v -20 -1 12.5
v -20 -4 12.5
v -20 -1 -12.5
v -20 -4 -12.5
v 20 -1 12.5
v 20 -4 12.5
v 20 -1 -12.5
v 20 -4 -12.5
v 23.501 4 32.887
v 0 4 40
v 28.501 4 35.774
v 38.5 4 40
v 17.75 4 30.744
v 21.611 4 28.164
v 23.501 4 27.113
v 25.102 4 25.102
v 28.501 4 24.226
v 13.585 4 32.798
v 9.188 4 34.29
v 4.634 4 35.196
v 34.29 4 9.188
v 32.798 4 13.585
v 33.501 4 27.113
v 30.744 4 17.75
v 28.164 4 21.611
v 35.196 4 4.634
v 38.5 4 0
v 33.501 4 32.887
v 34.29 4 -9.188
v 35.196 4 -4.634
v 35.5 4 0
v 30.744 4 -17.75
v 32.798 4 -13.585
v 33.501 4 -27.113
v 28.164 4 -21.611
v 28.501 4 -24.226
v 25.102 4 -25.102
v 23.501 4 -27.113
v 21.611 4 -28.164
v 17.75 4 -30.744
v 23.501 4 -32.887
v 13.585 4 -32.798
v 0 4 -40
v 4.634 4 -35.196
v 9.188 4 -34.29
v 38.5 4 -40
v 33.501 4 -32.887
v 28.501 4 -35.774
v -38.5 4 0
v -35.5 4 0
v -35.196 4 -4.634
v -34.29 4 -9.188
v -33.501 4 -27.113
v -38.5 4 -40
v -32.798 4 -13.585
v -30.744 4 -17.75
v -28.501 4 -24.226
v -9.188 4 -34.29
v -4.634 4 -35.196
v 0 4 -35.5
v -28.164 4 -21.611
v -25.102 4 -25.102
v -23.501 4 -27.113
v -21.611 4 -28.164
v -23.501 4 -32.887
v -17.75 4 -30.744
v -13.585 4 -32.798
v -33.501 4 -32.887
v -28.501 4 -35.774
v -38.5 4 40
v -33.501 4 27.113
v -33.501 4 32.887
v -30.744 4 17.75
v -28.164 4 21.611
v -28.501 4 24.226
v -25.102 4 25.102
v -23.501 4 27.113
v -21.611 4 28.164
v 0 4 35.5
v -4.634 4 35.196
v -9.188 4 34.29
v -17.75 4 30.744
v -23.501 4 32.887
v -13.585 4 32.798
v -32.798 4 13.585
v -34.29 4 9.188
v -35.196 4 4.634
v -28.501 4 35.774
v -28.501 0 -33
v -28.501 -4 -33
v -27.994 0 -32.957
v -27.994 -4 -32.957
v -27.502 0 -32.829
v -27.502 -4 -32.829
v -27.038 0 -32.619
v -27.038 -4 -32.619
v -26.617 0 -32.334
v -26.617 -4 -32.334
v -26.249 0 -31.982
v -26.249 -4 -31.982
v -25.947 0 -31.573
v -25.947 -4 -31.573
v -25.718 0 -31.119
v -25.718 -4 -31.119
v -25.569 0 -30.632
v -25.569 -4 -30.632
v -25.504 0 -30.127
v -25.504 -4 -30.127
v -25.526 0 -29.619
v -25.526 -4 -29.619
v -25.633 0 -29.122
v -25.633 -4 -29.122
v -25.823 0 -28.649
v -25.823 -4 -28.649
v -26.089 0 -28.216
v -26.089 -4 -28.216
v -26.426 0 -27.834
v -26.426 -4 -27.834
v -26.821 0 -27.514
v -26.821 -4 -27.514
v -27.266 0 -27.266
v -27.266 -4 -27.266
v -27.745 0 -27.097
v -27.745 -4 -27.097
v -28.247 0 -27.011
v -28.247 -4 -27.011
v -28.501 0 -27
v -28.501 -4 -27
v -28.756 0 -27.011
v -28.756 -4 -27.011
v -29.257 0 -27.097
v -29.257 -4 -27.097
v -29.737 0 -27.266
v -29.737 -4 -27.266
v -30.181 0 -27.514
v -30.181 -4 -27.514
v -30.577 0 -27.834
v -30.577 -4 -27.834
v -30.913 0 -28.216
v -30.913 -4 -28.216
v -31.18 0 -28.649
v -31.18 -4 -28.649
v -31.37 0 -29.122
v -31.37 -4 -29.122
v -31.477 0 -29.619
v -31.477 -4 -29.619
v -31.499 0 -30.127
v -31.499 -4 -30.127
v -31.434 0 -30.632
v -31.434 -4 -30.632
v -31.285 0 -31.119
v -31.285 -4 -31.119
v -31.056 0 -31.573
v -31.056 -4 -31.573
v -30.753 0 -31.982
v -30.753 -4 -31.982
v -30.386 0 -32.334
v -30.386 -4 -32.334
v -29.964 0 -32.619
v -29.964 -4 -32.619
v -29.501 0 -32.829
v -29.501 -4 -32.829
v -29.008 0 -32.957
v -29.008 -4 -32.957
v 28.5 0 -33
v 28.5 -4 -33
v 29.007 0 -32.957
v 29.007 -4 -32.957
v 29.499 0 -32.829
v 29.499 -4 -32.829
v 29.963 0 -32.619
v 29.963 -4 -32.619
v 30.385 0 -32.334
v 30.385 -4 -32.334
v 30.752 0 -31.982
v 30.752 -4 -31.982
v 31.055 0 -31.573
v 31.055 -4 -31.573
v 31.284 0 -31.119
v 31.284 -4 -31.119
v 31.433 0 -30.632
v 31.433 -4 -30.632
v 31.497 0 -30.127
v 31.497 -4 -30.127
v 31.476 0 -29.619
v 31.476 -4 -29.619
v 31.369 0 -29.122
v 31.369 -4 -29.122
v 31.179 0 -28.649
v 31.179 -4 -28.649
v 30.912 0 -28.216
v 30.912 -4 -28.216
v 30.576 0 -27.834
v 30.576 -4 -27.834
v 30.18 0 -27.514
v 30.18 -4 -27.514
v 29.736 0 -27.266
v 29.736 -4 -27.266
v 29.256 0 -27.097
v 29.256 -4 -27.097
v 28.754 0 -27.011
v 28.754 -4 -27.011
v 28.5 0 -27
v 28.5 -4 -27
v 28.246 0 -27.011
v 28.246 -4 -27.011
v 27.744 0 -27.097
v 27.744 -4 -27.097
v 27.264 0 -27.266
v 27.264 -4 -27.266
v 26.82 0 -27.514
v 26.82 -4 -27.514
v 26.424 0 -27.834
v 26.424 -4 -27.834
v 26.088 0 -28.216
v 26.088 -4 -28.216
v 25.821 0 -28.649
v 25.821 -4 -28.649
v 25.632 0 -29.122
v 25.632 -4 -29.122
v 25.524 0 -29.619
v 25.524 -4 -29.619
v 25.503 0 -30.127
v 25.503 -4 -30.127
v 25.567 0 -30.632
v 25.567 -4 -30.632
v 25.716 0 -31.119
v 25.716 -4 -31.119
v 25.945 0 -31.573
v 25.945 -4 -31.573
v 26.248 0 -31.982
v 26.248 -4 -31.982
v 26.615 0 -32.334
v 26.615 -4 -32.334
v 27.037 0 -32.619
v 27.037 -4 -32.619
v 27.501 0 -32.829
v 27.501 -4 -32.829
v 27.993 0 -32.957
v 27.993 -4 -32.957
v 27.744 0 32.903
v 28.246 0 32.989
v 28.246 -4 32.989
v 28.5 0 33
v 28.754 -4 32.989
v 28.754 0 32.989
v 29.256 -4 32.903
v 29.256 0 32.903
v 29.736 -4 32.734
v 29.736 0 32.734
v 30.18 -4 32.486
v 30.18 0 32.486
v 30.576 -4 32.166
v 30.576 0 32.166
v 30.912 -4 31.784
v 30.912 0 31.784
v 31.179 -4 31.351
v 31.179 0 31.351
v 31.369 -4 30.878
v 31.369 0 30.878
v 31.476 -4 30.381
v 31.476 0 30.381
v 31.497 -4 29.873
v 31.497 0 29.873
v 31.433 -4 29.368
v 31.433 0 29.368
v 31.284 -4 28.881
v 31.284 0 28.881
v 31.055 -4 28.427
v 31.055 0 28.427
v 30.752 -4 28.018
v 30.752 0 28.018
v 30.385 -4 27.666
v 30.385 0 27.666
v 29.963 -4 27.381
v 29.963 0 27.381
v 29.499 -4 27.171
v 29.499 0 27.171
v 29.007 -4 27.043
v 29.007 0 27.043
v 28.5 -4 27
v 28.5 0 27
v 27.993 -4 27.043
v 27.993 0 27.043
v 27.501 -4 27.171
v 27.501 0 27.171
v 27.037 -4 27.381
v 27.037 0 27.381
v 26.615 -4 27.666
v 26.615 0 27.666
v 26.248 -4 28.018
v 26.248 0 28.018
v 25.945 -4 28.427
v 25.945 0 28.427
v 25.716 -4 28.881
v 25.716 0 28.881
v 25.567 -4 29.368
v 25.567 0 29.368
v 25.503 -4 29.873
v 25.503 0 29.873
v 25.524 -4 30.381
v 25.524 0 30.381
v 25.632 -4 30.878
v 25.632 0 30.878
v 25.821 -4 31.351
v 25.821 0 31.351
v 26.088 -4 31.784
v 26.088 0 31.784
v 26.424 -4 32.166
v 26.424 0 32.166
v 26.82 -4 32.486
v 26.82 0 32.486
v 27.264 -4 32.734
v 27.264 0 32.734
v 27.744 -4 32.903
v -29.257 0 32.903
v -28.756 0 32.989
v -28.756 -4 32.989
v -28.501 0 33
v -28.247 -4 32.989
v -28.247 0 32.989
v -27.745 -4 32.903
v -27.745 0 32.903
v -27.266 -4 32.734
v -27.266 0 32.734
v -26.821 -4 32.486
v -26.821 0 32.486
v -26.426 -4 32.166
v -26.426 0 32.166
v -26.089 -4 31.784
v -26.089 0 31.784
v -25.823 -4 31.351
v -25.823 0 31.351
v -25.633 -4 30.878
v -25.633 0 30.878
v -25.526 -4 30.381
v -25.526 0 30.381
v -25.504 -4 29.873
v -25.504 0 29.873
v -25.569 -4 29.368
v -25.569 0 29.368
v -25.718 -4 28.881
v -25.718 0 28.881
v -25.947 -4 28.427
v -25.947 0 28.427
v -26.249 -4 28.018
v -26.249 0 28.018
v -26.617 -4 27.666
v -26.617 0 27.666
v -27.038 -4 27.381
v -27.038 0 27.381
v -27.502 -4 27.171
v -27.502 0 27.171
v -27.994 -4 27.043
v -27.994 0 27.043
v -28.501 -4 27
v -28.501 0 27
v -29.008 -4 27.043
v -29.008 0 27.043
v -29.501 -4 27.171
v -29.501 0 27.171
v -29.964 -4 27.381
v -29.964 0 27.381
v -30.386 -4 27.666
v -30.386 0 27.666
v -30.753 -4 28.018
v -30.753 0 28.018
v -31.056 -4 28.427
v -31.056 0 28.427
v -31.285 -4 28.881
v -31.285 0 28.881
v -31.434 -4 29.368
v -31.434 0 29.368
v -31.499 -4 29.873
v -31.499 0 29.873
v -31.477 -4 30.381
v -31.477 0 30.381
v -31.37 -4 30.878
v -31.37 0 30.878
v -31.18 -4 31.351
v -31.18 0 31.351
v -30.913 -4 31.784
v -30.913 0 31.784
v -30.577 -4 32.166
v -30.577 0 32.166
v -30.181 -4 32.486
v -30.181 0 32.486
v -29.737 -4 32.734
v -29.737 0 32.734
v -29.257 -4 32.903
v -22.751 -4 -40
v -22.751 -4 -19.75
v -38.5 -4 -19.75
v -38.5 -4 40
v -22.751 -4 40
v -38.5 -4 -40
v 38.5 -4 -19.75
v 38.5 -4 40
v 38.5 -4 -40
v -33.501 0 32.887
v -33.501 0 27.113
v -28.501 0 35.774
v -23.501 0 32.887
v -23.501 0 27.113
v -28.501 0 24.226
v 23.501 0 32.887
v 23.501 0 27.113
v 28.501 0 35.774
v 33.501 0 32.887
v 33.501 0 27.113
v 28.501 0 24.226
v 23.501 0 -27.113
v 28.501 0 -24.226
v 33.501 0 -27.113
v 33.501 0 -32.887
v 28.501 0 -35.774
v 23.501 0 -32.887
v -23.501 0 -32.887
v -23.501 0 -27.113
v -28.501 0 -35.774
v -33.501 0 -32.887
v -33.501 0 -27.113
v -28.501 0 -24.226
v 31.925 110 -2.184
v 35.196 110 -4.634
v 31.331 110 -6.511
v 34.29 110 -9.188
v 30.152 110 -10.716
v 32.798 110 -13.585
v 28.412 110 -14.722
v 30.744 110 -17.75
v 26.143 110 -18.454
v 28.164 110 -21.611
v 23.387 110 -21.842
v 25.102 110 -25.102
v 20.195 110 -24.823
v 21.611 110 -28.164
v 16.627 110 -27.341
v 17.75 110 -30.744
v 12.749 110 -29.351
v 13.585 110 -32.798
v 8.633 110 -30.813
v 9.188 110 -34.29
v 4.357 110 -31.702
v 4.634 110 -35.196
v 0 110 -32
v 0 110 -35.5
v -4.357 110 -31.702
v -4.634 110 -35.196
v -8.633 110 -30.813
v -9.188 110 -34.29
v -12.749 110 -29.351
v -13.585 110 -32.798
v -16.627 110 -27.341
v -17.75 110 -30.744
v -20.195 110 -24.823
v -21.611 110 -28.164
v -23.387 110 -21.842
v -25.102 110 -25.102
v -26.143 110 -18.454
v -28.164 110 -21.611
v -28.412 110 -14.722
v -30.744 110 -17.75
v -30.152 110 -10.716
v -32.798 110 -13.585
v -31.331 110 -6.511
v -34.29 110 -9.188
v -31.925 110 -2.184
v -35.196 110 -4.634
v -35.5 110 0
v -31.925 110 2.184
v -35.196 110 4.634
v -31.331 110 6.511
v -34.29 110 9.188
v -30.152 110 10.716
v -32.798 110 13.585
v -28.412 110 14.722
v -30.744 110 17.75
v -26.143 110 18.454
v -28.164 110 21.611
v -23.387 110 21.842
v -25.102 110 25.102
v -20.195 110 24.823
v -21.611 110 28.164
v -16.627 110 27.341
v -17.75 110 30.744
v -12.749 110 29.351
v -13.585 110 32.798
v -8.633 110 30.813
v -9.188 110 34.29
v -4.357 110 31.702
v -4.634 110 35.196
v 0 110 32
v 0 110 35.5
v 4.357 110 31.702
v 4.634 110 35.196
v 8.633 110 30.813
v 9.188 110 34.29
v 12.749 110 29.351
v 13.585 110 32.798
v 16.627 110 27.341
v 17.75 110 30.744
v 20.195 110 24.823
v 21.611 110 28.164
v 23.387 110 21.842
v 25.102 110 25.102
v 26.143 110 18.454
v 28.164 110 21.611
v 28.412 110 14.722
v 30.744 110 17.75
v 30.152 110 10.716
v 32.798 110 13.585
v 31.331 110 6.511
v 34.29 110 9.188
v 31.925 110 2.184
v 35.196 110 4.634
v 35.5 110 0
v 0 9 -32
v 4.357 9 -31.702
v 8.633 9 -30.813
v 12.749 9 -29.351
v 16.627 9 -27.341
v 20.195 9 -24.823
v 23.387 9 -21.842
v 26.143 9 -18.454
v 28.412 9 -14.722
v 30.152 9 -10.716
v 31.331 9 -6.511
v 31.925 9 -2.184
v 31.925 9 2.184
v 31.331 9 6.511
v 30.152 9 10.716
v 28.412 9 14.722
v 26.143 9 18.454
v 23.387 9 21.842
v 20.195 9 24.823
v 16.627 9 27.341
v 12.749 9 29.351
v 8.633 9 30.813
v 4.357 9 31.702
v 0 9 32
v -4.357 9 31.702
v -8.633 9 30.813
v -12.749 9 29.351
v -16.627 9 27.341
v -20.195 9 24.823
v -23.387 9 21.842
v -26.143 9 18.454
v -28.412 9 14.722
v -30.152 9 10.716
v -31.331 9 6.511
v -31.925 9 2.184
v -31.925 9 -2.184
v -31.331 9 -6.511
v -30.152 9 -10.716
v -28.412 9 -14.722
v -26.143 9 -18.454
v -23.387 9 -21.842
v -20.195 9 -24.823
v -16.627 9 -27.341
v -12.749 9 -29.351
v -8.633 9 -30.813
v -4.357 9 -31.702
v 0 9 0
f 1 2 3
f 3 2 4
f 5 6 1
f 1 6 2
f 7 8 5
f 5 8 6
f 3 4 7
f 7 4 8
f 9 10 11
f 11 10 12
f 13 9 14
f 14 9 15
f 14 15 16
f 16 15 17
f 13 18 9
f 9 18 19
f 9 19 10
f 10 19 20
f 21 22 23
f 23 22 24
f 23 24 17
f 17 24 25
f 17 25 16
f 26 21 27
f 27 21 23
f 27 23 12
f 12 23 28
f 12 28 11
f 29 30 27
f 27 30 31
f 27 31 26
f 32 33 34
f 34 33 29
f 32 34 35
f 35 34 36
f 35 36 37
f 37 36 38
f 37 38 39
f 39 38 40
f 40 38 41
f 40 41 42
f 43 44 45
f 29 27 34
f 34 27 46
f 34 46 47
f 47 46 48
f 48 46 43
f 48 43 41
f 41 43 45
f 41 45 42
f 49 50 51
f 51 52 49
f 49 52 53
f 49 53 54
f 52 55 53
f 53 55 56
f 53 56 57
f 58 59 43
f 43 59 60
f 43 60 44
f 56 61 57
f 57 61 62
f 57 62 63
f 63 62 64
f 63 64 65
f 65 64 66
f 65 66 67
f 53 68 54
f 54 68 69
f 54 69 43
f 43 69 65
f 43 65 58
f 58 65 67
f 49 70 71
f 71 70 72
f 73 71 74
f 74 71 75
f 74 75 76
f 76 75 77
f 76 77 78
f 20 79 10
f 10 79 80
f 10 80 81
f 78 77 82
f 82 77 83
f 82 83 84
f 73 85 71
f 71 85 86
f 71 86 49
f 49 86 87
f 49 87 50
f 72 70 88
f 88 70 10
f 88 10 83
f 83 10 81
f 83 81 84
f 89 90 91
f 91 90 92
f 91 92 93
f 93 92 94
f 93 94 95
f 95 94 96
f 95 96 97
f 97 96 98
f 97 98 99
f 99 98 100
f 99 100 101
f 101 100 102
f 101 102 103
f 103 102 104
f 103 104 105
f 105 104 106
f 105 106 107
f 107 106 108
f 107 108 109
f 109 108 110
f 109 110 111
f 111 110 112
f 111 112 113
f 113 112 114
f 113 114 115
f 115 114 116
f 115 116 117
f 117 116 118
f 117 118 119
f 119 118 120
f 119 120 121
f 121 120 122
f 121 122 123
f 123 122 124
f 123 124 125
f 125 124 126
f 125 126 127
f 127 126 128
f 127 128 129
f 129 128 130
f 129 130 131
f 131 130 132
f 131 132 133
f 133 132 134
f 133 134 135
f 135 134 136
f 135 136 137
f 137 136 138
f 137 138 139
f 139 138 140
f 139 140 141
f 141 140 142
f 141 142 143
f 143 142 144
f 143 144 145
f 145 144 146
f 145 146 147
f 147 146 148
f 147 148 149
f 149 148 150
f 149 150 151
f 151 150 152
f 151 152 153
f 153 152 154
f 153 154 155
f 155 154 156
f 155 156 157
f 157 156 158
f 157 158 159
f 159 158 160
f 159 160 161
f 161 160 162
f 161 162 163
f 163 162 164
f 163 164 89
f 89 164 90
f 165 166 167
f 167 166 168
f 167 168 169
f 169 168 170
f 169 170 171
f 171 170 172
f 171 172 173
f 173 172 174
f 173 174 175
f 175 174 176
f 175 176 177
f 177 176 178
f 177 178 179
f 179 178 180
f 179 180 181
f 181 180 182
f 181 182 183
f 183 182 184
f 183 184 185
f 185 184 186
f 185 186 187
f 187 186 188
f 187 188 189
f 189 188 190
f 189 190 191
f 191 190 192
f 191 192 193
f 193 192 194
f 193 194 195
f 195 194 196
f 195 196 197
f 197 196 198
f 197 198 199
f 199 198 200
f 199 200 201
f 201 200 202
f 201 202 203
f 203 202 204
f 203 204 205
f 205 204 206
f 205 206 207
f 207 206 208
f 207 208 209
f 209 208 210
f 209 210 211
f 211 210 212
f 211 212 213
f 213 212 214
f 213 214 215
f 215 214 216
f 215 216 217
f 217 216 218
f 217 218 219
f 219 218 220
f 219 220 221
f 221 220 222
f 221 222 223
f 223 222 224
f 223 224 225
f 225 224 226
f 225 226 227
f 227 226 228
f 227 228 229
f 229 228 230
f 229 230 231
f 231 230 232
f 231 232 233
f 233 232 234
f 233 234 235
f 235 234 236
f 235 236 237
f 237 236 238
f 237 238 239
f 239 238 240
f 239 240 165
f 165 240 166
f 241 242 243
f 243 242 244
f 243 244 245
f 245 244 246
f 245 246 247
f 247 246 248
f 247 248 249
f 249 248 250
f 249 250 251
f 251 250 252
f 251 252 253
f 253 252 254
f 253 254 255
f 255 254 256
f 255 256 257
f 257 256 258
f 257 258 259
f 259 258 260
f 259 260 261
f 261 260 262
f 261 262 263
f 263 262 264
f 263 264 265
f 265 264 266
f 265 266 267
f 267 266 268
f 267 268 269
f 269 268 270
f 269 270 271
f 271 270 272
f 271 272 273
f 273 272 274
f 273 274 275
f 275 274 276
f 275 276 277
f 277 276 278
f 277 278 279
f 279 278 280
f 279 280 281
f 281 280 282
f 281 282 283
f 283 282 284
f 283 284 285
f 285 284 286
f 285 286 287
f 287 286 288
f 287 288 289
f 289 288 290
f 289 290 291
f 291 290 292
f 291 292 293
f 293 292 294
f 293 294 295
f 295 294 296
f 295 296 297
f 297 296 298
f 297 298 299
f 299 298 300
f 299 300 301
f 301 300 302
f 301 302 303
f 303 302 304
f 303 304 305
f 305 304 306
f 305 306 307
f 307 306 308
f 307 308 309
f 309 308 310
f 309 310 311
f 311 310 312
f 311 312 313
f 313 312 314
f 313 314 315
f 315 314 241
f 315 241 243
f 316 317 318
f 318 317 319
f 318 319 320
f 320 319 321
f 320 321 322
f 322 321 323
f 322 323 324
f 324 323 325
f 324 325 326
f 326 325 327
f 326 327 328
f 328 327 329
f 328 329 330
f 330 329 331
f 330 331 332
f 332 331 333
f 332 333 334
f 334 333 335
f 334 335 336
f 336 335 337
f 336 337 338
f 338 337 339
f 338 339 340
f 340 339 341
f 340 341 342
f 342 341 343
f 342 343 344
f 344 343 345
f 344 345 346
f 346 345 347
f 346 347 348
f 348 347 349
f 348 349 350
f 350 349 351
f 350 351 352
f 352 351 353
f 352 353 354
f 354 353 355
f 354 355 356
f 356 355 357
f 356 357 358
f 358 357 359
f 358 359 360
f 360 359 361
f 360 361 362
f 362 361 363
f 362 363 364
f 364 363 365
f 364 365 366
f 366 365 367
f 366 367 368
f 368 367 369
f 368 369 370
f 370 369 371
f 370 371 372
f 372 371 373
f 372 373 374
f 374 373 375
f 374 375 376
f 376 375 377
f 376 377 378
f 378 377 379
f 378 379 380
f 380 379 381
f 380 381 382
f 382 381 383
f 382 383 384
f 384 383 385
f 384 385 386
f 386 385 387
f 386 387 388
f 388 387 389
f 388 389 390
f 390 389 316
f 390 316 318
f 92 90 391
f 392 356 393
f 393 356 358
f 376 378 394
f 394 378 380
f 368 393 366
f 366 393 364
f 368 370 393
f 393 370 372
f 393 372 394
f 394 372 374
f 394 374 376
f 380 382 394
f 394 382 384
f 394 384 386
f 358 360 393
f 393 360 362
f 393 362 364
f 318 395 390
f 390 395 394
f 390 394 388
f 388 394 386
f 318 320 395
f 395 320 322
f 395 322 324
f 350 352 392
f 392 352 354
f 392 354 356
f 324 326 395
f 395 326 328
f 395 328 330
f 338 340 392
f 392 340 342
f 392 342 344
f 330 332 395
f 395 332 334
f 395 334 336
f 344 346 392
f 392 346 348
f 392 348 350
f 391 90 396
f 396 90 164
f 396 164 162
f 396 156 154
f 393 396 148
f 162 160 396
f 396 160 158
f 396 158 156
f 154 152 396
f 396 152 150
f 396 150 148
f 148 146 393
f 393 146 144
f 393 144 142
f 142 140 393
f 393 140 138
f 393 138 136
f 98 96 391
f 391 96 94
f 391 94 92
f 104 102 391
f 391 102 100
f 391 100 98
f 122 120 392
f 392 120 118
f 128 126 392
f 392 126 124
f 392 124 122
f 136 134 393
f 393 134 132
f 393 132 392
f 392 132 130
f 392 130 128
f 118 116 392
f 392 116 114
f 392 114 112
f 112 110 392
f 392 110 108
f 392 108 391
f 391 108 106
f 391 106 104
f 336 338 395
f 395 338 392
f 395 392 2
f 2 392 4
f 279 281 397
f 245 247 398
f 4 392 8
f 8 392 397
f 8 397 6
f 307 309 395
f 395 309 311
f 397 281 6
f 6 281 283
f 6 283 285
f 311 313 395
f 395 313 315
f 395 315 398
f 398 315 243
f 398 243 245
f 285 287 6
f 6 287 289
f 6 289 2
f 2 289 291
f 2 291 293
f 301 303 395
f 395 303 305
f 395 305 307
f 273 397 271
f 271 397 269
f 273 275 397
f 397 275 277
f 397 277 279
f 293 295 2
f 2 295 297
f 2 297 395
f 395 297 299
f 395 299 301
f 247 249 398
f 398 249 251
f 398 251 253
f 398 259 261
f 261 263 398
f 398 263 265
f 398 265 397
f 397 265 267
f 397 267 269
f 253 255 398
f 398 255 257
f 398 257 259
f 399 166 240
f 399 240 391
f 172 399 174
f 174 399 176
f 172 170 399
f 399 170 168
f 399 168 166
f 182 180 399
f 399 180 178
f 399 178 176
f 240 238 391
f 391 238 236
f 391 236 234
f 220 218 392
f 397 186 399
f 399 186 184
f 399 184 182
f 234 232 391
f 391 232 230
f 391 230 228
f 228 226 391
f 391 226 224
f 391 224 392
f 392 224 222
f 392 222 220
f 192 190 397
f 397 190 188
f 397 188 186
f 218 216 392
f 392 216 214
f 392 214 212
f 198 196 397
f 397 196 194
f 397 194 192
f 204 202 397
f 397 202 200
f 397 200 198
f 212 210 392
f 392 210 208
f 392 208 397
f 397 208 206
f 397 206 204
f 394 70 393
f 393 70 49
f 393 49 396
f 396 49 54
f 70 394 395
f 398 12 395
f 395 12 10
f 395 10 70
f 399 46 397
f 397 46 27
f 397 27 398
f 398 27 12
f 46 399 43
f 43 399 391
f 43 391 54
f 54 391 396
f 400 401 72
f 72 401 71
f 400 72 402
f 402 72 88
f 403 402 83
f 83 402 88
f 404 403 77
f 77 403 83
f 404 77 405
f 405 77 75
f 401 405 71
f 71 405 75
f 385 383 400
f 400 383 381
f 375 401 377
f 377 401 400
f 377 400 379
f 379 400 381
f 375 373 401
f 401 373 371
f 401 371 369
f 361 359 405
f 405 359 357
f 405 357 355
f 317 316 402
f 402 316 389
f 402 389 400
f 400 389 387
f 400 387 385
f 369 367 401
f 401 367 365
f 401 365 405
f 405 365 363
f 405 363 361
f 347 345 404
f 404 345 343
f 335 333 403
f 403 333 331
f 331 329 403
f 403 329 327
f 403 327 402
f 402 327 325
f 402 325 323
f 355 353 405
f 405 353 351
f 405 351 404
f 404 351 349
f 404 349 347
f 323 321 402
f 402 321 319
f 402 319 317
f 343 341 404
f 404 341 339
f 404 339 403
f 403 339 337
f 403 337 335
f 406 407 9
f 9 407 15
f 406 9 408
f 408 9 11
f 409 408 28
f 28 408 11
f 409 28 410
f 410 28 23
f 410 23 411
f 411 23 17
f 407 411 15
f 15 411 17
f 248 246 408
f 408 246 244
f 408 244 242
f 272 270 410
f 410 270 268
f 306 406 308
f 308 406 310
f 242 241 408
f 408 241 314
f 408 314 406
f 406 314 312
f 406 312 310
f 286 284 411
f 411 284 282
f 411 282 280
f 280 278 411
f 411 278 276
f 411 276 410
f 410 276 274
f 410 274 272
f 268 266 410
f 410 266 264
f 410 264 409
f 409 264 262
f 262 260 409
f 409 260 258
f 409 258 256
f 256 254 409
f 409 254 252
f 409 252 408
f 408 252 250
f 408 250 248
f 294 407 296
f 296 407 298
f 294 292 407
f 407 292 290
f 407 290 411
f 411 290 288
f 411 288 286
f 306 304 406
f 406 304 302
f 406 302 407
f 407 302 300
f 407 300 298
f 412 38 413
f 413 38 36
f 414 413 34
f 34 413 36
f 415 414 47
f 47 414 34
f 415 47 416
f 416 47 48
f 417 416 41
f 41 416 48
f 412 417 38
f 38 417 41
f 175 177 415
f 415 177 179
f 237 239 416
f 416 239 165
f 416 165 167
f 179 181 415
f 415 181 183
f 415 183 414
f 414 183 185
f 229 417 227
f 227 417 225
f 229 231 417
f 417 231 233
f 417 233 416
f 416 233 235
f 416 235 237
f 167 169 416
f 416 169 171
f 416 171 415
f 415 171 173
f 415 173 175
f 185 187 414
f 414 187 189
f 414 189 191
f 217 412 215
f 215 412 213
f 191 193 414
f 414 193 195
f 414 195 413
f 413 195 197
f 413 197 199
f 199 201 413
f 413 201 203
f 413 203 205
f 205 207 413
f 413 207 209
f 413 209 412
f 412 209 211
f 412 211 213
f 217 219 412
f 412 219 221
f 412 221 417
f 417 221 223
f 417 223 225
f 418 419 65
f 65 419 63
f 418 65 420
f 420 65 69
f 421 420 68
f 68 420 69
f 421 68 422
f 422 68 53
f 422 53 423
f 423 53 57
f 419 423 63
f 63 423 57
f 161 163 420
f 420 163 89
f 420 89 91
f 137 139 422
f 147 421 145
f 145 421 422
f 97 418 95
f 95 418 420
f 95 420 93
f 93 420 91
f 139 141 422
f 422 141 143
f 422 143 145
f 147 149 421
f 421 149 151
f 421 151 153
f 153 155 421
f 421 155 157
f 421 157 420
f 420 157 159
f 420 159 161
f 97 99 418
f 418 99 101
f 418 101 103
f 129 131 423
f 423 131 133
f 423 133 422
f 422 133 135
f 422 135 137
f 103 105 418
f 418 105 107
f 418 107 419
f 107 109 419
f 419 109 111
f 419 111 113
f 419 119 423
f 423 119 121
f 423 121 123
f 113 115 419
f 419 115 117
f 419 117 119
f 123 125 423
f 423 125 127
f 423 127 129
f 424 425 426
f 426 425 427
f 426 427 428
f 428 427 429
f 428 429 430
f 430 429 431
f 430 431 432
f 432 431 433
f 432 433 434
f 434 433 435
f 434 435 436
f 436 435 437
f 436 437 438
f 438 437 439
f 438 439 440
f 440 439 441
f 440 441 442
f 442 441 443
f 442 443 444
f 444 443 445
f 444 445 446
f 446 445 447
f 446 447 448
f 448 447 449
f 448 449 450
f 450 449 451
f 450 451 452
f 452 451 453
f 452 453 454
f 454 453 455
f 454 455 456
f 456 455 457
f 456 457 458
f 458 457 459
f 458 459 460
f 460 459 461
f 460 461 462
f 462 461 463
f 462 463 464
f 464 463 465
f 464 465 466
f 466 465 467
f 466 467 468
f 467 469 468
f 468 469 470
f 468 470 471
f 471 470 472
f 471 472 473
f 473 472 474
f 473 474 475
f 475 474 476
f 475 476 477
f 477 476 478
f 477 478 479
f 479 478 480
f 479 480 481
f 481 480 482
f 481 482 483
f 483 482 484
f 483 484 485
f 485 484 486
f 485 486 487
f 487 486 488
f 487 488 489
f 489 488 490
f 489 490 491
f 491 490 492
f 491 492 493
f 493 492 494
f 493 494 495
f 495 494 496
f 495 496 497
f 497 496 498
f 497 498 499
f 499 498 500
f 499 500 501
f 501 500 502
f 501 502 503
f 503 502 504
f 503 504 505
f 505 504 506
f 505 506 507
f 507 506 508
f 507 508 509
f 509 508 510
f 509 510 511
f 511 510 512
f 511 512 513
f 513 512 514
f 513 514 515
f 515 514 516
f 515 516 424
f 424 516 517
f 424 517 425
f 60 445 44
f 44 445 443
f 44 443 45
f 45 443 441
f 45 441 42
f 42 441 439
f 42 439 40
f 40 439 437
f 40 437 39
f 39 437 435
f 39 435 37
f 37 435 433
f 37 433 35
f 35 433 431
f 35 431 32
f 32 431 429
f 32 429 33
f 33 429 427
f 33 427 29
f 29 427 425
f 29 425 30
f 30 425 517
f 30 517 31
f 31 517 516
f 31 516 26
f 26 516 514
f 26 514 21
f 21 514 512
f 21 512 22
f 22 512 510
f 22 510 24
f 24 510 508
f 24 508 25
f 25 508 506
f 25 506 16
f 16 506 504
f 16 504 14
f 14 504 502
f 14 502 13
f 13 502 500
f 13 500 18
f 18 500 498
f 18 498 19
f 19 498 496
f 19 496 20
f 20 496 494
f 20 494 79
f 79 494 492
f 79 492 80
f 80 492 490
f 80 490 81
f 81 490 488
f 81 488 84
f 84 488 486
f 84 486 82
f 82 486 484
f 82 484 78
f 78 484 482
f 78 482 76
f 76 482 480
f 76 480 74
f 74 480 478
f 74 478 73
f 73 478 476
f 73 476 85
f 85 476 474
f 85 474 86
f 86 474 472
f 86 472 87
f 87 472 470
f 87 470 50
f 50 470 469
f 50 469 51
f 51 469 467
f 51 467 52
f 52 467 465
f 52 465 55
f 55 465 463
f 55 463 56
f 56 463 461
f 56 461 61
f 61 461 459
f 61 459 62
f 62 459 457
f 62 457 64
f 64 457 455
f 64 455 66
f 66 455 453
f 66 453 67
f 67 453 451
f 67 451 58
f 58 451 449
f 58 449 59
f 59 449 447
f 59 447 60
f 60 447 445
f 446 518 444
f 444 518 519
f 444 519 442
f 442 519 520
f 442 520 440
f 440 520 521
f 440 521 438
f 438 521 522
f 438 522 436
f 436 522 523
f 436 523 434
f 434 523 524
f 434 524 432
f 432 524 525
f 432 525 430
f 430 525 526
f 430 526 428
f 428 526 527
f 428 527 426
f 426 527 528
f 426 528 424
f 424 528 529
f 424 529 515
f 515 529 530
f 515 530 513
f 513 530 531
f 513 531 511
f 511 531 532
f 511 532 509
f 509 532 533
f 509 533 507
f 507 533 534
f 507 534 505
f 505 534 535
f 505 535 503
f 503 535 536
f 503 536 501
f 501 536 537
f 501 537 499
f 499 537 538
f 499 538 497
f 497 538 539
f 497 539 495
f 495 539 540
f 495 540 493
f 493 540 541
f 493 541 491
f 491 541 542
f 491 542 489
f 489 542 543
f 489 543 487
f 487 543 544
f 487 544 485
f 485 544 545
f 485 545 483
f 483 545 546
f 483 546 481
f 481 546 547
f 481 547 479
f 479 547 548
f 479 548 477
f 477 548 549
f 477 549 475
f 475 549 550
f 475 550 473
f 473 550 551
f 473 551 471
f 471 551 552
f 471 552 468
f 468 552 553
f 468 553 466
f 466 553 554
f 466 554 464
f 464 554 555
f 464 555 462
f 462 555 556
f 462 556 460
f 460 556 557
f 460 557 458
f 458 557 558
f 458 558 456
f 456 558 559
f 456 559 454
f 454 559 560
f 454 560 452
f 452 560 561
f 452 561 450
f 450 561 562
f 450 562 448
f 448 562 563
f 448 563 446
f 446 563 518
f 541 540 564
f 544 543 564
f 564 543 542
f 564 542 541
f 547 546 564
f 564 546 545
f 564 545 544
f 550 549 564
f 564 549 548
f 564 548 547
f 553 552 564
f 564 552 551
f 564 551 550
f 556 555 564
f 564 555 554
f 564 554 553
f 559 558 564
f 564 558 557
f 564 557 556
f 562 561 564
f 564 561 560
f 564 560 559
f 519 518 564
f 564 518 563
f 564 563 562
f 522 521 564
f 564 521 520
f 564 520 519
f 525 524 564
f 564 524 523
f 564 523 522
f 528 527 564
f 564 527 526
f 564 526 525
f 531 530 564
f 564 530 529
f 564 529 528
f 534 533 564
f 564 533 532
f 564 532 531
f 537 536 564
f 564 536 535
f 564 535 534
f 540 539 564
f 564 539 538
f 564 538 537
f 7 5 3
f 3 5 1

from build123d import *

# Parameters (mm, degrees)
SKETCH1_W           = 77
SKETCH1_H           = 80
SKETCH1_R           = 3
SKETCH1_W_2         = 40
SKETCH1_H_2         = 25
BOSS_EXTRUDE1_DEPTH = 4
CUT_EXTRUDE1_DEPTH  = 10
SKETCH3_R           = 35.5
SKETCH3_R_2         = 32
BOSS_EXTRUDE2_DEPTH = 110
SKETCH5_R           = 32
BOSS_EXTRUDE3_DEPTH = 5


with BuildPart() as part:
    # Sketch1 → Boss-Extrude1 (new, symmetric)
    with BuildSketch(Plane(origin=(0, 0, 0), x_dir=(1, 0, 0), z_dir=(0, 1, 0))):
        Rectangle(SKETCH1_W, SKETCH1_H)
        with Locations(Location((-28.501375206, 30, 0), (0, 0, 270))):
            Circle(SKETCH1_R, mode=Mode.SUBTRACT)
        with Locations(Location((28.5, 30, 0), (0, 0, 270))):
            Circle(SKETCH1_R, mode=Mode.SUBTRACT)
        with Locations(Location((28.5, -30, 0), (0, 0, 90))):
            Circle(SKETCH1_R, mode=Mode.SUBTRACT)
        with Locations(Location((-28.501375206, -30, 0), (0, 0, 90))):
            Circle(SKETCH1_R, mode=Mode.SUBTRACT)
        Rectangle(SKETCH1_W_2, SKETCH1_H_2, mode=Mode.SUBTRACT)
    extrude(amount=BOSS_EXTRUDE1_DEPTH, both=True)

    # Sketch2 → Cut-Extrude1 (cut)
    with BuildSketch(Plane(origin=(0, 0, 0), x_dir=(1, 0, 0), z_dir=(0, 1, 0))):
        Polygon((-33.501375206, -32.886751346), (-33.501375206, -27.113248654), (-28.501375206, -24.226497308), (-23.501375206, -27.113248654), (-23.501375206, -30), (-23.501375206, -32.886751346), (-28.501375206, -35.773502692), align=None)
        Polygon((-23.501375206, 30), (-23.501375206, 27.113248654), (-28.501375206, 24.226497308), (-33.501375206, 27.113248654), (-33.501375206, 32.886751346), (-28.501375206, 35.773502692), (-23.501375206, 32.886751346), align=None)
        Polygon((23.501375206, -30), (23.501375206, -27.113248654), (28.501375206, -24.226497308), (33.501375206, -27.113248654), (33.501375206, -32.886751346), (28.501375206, -35.773502692), (23.501375206, -32.886751346), align=None)
        Polygon((23.501375206, 27.113248654), (28.501375206, 24.226497308), (33.501375206, 27.113248654), (33.501375206, 32.886751346), (28.501375206, 35.773502692), (23.501375206, 32.886751346), (23.501375206, 30), align=None)
    extrude(amount=CUT_EXTRUDE1_DEPTH, mode=Mode.SUBTRACT)

    # Sketch3 → Boss-Extrude2 (add)
    with BuildSketch(Plane(origin=(0, 0, 0), x_dir=(1, 0, 0), z_dir=(0, 1, 0))):
        with Locations(Location((0, 0, 0), (0, 0, 270))):
            Circle(SKETCH3_R)
        with Locations(Location((0, 0, 0), (0, 0, 270))):
            Circle(SKETCH3_R_2, mode=Mode.SUBTRACT)
    extrude(amount=BOSS_EXTRUDE2_DEPTH)

    # Sketch5 → Boss-Extrude3 (add, symmetric)
    with BuildSketch(Plane(origin=(0, 4, 0), x_dir=(1, 0, 0), z_dir=(0, 1, 0))):
        with Locations(Location((0, 0, 0), (0, 0, 270))):
            Circle(SKETCH5_R)
    extrude(amount=BOSS_EXTRUDE3_DEPTH, both=True)


solid = part.part
